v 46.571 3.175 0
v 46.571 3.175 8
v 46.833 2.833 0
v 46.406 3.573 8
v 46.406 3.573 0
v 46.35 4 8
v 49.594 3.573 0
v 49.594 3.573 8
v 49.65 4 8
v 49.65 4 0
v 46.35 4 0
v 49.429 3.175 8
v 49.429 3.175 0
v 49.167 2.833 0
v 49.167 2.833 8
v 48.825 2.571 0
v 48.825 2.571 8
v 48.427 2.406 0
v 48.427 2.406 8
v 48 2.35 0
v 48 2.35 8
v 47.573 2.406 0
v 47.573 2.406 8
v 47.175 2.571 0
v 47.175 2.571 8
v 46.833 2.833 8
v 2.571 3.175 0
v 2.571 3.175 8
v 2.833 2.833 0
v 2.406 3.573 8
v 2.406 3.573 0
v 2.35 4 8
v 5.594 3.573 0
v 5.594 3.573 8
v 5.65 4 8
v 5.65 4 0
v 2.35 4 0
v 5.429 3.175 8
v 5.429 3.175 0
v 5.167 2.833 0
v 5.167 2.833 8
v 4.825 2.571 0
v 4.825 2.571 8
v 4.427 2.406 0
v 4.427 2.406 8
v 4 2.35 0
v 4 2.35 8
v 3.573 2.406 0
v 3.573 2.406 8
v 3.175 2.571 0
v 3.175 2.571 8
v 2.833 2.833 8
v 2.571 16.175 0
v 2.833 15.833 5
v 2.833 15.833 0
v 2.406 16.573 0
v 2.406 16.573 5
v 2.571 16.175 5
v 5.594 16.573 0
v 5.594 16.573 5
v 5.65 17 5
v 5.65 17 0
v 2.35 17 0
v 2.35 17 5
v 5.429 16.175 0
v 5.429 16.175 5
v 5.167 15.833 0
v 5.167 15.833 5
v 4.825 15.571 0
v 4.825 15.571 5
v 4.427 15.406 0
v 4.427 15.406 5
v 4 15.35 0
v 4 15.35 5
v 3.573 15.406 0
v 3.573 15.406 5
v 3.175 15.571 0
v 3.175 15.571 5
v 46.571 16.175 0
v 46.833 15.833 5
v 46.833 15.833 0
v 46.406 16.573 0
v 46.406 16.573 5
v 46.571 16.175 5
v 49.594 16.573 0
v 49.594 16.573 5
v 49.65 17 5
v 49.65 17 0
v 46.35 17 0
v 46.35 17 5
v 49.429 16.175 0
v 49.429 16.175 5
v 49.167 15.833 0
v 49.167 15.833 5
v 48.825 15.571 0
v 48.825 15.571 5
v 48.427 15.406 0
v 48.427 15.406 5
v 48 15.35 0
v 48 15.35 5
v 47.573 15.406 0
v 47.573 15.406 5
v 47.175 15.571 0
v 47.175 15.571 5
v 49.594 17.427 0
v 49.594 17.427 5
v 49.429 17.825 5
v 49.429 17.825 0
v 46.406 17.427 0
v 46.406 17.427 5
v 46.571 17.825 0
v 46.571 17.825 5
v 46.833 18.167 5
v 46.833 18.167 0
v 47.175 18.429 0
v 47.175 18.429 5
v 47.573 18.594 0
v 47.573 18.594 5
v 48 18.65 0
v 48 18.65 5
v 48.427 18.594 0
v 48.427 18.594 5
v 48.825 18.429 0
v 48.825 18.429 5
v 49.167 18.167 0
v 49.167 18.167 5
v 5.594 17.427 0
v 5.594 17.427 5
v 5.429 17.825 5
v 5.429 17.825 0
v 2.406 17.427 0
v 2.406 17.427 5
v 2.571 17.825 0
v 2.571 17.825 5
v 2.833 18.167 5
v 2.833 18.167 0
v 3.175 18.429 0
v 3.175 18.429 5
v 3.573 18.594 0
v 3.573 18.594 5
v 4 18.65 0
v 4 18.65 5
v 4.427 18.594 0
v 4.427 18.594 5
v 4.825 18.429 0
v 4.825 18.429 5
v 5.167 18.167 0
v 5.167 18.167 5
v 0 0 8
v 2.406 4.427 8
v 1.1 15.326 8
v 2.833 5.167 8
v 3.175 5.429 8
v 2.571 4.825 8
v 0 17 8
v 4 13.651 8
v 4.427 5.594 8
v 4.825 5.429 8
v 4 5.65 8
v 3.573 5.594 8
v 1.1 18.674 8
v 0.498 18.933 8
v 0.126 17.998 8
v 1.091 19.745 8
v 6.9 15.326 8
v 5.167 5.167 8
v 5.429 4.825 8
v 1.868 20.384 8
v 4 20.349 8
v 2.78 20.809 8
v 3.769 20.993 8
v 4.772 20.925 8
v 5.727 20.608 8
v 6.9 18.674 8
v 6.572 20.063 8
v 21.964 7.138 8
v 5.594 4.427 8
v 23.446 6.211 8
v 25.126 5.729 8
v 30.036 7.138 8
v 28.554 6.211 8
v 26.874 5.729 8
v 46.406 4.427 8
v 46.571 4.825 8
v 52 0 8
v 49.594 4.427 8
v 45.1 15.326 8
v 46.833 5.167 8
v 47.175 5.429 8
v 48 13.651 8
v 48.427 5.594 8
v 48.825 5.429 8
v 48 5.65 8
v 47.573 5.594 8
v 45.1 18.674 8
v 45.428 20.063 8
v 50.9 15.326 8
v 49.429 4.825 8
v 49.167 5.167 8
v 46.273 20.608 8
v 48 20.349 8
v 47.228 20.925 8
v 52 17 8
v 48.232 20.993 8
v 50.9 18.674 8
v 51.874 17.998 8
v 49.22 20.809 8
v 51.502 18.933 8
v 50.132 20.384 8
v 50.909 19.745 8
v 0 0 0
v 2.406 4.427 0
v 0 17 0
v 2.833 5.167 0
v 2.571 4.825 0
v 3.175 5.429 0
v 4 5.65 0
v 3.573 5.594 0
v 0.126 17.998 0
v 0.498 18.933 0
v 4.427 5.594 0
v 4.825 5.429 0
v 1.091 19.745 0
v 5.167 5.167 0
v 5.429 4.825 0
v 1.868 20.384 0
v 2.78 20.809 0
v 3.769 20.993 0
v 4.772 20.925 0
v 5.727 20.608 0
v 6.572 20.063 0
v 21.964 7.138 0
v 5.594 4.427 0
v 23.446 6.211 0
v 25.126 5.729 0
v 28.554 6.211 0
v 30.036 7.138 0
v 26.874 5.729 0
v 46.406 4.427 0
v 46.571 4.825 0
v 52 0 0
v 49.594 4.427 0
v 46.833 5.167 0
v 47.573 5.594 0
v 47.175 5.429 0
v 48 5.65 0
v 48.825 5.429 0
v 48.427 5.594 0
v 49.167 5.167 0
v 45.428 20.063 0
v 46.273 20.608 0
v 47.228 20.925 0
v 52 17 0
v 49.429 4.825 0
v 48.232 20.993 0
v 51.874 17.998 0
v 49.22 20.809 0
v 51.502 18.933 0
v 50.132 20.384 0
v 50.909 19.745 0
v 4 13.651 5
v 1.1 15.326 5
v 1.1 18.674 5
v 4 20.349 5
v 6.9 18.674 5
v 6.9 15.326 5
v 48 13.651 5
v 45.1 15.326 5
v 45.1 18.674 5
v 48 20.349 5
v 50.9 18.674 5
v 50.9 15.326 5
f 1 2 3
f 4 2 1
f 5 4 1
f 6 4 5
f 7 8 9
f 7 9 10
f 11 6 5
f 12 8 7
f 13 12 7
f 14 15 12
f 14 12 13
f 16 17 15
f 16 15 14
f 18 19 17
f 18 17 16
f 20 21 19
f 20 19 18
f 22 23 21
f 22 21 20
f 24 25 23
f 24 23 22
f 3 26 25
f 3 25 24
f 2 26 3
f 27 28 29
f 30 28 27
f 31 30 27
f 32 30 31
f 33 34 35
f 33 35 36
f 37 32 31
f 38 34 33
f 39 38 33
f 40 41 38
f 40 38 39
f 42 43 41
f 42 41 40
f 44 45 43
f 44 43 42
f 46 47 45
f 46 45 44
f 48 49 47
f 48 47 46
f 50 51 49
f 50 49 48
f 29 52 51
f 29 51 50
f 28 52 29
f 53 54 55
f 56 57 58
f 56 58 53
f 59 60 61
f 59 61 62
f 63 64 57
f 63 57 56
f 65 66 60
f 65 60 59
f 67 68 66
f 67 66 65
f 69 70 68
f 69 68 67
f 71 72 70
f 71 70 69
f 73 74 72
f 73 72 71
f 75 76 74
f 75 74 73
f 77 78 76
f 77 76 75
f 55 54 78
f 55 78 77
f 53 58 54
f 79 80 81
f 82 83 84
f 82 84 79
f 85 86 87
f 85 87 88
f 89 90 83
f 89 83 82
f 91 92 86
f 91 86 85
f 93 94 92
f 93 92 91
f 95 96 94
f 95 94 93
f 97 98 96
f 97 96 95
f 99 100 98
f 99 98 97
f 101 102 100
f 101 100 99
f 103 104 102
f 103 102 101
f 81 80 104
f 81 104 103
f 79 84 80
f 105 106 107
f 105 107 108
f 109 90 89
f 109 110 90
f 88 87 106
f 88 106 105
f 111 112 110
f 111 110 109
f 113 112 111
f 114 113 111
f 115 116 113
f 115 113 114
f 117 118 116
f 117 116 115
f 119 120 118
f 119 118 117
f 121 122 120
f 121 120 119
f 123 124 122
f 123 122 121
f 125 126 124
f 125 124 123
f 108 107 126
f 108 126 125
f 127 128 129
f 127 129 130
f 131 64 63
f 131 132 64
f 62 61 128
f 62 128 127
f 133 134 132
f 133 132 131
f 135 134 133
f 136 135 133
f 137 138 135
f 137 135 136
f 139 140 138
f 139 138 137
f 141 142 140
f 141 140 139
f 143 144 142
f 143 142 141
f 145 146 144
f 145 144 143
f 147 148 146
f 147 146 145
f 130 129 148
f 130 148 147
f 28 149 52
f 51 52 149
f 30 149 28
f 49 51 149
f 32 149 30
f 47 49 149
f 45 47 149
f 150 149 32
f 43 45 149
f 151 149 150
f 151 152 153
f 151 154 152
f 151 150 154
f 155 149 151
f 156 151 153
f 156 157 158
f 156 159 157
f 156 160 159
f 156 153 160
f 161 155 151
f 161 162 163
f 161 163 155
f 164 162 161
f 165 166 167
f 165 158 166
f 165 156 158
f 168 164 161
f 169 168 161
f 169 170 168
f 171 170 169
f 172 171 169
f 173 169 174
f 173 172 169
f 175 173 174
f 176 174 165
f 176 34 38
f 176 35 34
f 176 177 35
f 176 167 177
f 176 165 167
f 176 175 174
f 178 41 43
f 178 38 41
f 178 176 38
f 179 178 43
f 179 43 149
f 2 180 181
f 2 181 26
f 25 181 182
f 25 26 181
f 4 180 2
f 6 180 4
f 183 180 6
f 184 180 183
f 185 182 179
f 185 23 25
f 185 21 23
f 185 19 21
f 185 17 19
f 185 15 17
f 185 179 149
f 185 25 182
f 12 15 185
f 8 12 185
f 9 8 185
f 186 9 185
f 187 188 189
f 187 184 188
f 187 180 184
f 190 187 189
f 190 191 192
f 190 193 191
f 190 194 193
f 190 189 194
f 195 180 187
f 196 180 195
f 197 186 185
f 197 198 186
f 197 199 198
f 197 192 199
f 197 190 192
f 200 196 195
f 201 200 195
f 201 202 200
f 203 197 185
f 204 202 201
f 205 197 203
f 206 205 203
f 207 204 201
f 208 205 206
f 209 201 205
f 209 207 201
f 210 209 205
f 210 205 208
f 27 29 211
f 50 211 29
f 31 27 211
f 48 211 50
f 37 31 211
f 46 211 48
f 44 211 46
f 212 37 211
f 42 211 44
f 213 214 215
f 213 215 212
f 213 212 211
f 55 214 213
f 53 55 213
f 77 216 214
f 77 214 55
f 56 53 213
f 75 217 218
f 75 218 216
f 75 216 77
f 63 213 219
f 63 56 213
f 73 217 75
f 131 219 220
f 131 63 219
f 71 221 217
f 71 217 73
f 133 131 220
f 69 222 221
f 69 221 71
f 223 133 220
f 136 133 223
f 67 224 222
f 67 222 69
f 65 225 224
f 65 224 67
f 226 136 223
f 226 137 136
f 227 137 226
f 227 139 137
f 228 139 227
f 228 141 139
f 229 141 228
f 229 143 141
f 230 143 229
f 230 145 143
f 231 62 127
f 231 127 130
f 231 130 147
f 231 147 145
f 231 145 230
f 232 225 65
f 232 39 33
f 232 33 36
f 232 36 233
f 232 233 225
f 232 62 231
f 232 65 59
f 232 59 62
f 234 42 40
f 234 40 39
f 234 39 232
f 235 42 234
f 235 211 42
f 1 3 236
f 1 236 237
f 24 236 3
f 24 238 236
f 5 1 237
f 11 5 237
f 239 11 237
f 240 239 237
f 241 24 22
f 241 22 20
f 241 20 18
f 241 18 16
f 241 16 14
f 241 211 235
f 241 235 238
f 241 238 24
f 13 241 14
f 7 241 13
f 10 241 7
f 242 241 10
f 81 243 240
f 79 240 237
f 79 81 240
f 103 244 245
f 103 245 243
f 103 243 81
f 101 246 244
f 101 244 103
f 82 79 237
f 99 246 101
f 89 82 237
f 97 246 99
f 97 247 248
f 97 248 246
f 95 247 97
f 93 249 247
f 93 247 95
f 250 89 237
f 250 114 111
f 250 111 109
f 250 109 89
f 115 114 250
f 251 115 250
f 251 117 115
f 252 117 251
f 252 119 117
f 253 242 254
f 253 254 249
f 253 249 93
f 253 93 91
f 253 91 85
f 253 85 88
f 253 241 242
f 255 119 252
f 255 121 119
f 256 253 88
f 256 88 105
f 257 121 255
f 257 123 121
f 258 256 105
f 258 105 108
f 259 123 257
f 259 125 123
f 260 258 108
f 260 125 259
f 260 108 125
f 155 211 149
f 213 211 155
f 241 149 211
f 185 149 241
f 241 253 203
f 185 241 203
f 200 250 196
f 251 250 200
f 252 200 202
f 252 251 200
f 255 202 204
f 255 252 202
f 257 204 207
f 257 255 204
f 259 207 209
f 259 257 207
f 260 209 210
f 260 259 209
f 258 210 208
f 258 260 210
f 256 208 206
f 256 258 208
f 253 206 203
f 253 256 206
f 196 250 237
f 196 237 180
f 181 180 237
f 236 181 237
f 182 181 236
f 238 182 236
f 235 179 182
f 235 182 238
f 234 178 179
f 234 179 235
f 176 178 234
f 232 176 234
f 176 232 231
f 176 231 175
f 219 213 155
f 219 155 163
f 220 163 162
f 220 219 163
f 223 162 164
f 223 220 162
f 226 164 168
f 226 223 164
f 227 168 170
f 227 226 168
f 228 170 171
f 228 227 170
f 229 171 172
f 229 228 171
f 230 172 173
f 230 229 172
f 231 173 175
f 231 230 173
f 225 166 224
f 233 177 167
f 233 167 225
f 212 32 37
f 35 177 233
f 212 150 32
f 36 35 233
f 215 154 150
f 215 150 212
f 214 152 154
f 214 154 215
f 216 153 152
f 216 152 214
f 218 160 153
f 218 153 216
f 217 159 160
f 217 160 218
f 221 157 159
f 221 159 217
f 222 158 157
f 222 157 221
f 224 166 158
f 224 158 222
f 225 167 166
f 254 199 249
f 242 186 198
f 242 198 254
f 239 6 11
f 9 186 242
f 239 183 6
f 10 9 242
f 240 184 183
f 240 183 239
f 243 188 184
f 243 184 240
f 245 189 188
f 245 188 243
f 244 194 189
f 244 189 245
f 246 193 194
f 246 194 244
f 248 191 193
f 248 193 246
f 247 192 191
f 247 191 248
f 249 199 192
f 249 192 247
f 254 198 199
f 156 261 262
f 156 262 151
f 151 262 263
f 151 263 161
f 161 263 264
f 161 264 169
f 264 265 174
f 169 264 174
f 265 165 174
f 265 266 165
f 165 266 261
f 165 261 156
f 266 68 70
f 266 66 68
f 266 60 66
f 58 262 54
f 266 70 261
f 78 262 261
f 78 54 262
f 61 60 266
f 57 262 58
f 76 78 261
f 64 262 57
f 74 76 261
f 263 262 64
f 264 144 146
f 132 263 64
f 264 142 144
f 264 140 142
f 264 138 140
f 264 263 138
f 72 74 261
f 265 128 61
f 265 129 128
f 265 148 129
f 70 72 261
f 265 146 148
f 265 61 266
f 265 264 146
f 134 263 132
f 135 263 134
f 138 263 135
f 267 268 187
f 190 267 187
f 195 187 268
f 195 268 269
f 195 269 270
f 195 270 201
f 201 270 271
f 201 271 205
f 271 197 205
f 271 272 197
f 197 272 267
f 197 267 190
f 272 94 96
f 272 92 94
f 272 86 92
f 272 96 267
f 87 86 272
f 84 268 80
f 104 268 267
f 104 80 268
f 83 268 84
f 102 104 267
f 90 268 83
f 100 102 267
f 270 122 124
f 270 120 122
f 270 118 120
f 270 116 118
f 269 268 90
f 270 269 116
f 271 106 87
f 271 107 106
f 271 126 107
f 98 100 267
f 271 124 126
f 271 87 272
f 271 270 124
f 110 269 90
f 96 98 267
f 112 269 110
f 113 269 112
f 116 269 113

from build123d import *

# Parameters (mm, degrees)
SKETCH1_R           = 1.65
BOSS_EXTRUDE1_DEPTH = 8
CUT_EXTRUDE1_DEPTH  = 3


with BuildPart() as part:
    # Sketch1 → Boss-Extrude1 (new body)
    with BuildSketch(Plane.XY):
        with BuildLine():
            Line((0, 0), (52, 0))
            Line((52, 0), (52, 17))
            ThreePointArc((52, 17), (49.689734101, 20.625575633), (45.427600665, 20.06312939))
            Line((45.427600665, 20.06312939), (30.036241487, 7.137550003))
            ThreePointArc((30.036241487, 7.137550003), (26, 5.667546504), (21.963758513, 7.137550003))
            Line((21.963758513, 7.137550003), (6.572399335, 20.06312939))
            ThreePointArc((6.572399335, 20.06312939), (2.310265899, 20.625575633), (0, 17))
            Line((0, 17), (0, 0))
        make_face()
        with Locations((4, 17)):
            Circle(SKETCH1_R, mode=Mode.SUBTRACT)
        with Locations((48, 17)):
            Circle(SKETCH1_R, mode=Mode.SUBTRACT)
        with Locations((4, 4)):
            Circle(SKETCH1_R, mode=Mode.SUBTRACT)
        with Locations((48, 4)):
            Circle(SKETCH1_R, mode=Mode.SUBTRACT)
    extrude(amount=BOSS_EXTRUDE1_DEPTH)

    # Sketch2 → Cut-Extrude1 (cut)
    with BuildSketch(Plane.XY.offset(8)):
        Polygon((4, 13.651368439), (6.9, 15.325684219), (6.9, 18.674315781), (4, 20.348631561), (1.1, 18.674315781), (1.1, 15.325684219), align=None)
        Polygon((48, 13.651368439), (50.9, 15.325684219), (50.9, 18.674315781), (48, 20.348631561), (45.1, 18.674315781), (45.1, 15.325684219), align=None)
    extrude(amount=-CUT_EXTRUDE1_DEPTH, mode=Mode.SUBTRACT)


solid = part.part
